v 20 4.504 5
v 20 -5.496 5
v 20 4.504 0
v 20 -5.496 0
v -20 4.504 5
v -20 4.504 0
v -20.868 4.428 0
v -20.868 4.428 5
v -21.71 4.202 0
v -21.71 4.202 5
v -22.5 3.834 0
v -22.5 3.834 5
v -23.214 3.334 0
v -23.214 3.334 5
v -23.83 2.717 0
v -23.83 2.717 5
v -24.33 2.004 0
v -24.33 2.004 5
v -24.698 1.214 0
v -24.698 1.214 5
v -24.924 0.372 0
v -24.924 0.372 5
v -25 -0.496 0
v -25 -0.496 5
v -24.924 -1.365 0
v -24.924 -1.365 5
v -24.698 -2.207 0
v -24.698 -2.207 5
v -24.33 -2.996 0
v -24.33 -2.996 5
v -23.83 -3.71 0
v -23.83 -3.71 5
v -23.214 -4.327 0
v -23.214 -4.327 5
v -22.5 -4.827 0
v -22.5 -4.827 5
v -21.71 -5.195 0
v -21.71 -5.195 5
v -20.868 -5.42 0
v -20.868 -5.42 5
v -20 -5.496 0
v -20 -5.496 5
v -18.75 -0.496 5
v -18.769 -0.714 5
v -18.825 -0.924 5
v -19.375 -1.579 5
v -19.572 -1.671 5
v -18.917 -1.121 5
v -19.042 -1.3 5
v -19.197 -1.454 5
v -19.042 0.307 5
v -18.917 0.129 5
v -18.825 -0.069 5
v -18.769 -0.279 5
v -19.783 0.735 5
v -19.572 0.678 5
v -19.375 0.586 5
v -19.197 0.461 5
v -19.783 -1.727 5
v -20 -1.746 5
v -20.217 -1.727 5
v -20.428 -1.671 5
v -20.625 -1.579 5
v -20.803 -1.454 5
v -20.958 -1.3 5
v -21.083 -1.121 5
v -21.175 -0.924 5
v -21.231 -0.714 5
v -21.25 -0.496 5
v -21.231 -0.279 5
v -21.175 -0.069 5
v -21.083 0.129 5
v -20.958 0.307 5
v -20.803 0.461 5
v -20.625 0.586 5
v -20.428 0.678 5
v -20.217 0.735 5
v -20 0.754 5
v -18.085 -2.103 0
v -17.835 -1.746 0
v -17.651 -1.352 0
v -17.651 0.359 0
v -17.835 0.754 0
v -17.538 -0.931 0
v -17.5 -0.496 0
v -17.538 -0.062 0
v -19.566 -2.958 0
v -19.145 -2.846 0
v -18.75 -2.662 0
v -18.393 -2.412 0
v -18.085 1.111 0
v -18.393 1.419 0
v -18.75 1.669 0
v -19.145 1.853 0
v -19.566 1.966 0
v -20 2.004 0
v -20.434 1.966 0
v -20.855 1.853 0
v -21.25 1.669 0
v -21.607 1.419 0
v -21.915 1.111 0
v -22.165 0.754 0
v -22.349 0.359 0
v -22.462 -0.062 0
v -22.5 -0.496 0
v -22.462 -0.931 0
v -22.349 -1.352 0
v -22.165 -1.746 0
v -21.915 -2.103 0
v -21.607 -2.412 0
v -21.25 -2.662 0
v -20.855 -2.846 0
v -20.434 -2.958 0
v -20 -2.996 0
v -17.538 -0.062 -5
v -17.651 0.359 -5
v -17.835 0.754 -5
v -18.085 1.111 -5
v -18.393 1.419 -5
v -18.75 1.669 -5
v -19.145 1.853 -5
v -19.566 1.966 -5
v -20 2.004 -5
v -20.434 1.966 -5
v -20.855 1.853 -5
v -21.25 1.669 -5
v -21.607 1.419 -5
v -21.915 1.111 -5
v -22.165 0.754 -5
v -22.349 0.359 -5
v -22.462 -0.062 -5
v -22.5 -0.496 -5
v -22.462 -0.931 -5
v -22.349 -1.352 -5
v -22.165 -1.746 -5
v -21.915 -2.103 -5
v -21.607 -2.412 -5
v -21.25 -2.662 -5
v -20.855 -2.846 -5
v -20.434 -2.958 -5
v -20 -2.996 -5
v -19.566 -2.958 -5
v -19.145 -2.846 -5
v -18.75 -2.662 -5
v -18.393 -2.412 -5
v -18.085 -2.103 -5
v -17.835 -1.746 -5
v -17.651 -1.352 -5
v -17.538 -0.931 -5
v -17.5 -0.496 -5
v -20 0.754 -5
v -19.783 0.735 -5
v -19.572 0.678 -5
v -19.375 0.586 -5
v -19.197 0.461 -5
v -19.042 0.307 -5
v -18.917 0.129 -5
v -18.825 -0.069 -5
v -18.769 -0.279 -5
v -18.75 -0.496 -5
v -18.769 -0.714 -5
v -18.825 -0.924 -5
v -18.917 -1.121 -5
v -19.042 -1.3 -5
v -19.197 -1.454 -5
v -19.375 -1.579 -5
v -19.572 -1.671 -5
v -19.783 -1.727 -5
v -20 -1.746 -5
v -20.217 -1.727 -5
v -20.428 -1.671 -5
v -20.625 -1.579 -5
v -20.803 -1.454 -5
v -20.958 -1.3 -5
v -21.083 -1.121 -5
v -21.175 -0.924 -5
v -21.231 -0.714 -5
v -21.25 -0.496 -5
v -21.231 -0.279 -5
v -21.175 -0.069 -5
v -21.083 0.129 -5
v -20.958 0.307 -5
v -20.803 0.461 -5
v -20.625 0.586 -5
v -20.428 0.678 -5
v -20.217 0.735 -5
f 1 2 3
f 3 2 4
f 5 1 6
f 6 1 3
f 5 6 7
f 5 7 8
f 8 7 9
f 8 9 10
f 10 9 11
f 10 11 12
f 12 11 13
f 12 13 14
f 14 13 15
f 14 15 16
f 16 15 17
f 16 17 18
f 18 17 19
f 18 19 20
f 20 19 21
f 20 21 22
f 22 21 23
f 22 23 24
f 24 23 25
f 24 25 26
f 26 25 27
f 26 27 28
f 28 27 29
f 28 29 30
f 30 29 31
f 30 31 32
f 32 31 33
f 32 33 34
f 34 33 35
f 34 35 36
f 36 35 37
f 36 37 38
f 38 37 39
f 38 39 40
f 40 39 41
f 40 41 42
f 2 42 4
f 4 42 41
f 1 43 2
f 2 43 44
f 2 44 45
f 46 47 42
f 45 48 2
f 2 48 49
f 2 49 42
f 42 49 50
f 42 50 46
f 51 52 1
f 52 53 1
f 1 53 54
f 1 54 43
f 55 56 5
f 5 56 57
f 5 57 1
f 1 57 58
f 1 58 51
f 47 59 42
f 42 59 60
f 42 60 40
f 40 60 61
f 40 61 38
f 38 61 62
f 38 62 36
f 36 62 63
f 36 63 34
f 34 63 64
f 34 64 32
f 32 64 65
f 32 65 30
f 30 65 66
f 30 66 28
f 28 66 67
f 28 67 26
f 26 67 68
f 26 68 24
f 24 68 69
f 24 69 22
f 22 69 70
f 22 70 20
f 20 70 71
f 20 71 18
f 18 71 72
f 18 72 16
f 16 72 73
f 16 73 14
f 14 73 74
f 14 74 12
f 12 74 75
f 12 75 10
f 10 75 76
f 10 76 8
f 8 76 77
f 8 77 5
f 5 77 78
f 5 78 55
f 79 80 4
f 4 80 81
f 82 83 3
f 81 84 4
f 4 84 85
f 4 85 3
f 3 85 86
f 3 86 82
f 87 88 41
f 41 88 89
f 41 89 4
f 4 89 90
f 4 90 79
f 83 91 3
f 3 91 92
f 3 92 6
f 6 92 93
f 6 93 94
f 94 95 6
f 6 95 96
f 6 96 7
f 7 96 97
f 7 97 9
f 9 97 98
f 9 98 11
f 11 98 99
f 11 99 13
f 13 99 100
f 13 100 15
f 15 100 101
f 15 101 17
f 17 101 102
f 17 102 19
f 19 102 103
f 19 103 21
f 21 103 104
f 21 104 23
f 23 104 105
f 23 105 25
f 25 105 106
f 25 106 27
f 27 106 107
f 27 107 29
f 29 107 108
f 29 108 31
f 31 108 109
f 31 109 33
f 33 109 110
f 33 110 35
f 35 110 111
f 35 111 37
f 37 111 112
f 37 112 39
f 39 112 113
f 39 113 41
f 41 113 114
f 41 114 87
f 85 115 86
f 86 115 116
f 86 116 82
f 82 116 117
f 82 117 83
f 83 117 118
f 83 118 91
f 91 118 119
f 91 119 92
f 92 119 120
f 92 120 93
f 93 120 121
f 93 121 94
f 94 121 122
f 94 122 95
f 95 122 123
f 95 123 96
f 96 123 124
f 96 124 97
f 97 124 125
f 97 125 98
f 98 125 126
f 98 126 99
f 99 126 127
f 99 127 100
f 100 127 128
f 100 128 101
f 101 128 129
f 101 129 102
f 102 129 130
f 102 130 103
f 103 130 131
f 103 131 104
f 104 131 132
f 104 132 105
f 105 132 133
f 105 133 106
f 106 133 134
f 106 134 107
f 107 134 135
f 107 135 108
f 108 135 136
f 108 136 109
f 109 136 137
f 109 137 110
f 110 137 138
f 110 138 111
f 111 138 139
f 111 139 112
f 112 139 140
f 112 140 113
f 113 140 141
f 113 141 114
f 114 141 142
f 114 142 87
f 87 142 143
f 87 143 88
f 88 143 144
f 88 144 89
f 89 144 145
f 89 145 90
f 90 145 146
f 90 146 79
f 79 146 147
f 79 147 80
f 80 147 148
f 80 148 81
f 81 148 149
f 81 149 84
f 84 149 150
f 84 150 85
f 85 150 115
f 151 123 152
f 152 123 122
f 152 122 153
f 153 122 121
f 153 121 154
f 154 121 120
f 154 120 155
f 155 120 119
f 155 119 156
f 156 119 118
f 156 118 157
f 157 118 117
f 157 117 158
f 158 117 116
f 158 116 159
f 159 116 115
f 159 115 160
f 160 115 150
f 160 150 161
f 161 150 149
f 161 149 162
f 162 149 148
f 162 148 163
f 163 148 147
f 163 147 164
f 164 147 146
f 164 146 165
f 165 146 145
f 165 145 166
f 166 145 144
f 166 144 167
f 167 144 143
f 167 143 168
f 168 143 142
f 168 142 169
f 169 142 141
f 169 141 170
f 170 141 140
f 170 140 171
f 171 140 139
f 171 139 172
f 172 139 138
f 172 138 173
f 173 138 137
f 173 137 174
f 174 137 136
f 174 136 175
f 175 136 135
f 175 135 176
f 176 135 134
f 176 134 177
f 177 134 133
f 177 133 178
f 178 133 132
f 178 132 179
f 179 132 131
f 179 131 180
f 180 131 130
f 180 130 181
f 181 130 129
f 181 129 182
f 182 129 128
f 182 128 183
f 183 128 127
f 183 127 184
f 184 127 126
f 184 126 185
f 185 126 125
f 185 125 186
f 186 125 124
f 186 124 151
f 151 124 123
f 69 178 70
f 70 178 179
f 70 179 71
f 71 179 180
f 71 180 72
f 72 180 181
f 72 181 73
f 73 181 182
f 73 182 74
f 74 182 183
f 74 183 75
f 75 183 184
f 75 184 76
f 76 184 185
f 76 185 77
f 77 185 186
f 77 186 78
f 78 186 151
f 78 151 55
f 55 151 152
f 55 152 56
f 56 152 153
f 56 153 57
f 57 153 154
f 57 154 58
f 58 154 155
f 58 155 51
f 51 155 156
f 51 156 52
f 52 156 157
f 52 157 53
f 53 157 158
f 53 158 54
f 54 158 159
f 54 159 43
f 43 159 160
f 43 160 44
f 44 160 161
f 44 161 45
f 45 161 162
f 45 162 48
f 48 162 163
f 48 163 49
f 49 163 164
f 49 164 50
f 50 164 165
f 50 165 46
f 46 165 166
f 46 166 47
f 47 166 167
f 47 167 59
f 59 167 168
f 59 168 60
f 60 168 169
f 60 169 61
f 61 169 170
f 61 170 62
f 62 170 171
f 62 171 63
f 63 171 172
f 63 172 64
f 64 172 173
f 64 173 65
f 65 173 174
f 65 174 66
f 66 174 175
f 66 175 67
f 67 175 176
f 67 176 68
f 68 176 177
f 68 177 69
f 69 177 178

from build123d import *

# Parameters (mm, degrees)
ESTRUSIONE_ESTRUSIONE1_DEPTH = 5
SCHIZZO2_R                   = 2.5
ESTRUSIONE_ESTRUSIONE2_DEPTH = 5
SCHIZZO3_R                   = 1.25
TAGLIO_ESTRUSIONE1_DEPTH     = 11


with BuildPart() as part:
    # Schizzo1 → Estrusione-Estrusione1 (new body)
    with BuildSketch(Plane.XY):
        with BuildLine():
            Line((20, 4.503546099), (-20, 4.503546099))
            ThreePointArc((-20, 4.503546099), (-25, -0.496453901), (-20, -5.496453901))
            Line((-20, -5.496453901), (20, -5.496453901))
            Line((20, -5.496453901), (20, 4.503546099))
        make_face()
    extrude(amount=ESTRUSIONE_ESTRUSIONE1_DEPTH)

    # Schizzo2 → Estrusione-Estrusione2 (add)
    with BuildSketch(Plane(origin=(0, 0, 0), x_dir=(-1, 0, 0), z_dir=(0, 0, -1))):
        with Locations((20, -0.496453901)):
            Circle(SCHIZZO2_R)
    extrude(amount=ESTRUSIONE_ESTRUSIONE2_DEPTH)

    # Schizzo3 → Taglio-Estrusione1 (cut, through all)
    with BuildSketch(Plane(origin=(0, 0, -5), x_dir=(-1, 0, 0), z_dir=(0, 0, -1))):
        with Locations((20, -0.496453901)):
            Circle(SCHIZZO3_R)
    extrude(amount=-TAGLIO_ESTRUSIONE1_DEPTH, mode=Mode.SUBTRACT)


solid = part.part
